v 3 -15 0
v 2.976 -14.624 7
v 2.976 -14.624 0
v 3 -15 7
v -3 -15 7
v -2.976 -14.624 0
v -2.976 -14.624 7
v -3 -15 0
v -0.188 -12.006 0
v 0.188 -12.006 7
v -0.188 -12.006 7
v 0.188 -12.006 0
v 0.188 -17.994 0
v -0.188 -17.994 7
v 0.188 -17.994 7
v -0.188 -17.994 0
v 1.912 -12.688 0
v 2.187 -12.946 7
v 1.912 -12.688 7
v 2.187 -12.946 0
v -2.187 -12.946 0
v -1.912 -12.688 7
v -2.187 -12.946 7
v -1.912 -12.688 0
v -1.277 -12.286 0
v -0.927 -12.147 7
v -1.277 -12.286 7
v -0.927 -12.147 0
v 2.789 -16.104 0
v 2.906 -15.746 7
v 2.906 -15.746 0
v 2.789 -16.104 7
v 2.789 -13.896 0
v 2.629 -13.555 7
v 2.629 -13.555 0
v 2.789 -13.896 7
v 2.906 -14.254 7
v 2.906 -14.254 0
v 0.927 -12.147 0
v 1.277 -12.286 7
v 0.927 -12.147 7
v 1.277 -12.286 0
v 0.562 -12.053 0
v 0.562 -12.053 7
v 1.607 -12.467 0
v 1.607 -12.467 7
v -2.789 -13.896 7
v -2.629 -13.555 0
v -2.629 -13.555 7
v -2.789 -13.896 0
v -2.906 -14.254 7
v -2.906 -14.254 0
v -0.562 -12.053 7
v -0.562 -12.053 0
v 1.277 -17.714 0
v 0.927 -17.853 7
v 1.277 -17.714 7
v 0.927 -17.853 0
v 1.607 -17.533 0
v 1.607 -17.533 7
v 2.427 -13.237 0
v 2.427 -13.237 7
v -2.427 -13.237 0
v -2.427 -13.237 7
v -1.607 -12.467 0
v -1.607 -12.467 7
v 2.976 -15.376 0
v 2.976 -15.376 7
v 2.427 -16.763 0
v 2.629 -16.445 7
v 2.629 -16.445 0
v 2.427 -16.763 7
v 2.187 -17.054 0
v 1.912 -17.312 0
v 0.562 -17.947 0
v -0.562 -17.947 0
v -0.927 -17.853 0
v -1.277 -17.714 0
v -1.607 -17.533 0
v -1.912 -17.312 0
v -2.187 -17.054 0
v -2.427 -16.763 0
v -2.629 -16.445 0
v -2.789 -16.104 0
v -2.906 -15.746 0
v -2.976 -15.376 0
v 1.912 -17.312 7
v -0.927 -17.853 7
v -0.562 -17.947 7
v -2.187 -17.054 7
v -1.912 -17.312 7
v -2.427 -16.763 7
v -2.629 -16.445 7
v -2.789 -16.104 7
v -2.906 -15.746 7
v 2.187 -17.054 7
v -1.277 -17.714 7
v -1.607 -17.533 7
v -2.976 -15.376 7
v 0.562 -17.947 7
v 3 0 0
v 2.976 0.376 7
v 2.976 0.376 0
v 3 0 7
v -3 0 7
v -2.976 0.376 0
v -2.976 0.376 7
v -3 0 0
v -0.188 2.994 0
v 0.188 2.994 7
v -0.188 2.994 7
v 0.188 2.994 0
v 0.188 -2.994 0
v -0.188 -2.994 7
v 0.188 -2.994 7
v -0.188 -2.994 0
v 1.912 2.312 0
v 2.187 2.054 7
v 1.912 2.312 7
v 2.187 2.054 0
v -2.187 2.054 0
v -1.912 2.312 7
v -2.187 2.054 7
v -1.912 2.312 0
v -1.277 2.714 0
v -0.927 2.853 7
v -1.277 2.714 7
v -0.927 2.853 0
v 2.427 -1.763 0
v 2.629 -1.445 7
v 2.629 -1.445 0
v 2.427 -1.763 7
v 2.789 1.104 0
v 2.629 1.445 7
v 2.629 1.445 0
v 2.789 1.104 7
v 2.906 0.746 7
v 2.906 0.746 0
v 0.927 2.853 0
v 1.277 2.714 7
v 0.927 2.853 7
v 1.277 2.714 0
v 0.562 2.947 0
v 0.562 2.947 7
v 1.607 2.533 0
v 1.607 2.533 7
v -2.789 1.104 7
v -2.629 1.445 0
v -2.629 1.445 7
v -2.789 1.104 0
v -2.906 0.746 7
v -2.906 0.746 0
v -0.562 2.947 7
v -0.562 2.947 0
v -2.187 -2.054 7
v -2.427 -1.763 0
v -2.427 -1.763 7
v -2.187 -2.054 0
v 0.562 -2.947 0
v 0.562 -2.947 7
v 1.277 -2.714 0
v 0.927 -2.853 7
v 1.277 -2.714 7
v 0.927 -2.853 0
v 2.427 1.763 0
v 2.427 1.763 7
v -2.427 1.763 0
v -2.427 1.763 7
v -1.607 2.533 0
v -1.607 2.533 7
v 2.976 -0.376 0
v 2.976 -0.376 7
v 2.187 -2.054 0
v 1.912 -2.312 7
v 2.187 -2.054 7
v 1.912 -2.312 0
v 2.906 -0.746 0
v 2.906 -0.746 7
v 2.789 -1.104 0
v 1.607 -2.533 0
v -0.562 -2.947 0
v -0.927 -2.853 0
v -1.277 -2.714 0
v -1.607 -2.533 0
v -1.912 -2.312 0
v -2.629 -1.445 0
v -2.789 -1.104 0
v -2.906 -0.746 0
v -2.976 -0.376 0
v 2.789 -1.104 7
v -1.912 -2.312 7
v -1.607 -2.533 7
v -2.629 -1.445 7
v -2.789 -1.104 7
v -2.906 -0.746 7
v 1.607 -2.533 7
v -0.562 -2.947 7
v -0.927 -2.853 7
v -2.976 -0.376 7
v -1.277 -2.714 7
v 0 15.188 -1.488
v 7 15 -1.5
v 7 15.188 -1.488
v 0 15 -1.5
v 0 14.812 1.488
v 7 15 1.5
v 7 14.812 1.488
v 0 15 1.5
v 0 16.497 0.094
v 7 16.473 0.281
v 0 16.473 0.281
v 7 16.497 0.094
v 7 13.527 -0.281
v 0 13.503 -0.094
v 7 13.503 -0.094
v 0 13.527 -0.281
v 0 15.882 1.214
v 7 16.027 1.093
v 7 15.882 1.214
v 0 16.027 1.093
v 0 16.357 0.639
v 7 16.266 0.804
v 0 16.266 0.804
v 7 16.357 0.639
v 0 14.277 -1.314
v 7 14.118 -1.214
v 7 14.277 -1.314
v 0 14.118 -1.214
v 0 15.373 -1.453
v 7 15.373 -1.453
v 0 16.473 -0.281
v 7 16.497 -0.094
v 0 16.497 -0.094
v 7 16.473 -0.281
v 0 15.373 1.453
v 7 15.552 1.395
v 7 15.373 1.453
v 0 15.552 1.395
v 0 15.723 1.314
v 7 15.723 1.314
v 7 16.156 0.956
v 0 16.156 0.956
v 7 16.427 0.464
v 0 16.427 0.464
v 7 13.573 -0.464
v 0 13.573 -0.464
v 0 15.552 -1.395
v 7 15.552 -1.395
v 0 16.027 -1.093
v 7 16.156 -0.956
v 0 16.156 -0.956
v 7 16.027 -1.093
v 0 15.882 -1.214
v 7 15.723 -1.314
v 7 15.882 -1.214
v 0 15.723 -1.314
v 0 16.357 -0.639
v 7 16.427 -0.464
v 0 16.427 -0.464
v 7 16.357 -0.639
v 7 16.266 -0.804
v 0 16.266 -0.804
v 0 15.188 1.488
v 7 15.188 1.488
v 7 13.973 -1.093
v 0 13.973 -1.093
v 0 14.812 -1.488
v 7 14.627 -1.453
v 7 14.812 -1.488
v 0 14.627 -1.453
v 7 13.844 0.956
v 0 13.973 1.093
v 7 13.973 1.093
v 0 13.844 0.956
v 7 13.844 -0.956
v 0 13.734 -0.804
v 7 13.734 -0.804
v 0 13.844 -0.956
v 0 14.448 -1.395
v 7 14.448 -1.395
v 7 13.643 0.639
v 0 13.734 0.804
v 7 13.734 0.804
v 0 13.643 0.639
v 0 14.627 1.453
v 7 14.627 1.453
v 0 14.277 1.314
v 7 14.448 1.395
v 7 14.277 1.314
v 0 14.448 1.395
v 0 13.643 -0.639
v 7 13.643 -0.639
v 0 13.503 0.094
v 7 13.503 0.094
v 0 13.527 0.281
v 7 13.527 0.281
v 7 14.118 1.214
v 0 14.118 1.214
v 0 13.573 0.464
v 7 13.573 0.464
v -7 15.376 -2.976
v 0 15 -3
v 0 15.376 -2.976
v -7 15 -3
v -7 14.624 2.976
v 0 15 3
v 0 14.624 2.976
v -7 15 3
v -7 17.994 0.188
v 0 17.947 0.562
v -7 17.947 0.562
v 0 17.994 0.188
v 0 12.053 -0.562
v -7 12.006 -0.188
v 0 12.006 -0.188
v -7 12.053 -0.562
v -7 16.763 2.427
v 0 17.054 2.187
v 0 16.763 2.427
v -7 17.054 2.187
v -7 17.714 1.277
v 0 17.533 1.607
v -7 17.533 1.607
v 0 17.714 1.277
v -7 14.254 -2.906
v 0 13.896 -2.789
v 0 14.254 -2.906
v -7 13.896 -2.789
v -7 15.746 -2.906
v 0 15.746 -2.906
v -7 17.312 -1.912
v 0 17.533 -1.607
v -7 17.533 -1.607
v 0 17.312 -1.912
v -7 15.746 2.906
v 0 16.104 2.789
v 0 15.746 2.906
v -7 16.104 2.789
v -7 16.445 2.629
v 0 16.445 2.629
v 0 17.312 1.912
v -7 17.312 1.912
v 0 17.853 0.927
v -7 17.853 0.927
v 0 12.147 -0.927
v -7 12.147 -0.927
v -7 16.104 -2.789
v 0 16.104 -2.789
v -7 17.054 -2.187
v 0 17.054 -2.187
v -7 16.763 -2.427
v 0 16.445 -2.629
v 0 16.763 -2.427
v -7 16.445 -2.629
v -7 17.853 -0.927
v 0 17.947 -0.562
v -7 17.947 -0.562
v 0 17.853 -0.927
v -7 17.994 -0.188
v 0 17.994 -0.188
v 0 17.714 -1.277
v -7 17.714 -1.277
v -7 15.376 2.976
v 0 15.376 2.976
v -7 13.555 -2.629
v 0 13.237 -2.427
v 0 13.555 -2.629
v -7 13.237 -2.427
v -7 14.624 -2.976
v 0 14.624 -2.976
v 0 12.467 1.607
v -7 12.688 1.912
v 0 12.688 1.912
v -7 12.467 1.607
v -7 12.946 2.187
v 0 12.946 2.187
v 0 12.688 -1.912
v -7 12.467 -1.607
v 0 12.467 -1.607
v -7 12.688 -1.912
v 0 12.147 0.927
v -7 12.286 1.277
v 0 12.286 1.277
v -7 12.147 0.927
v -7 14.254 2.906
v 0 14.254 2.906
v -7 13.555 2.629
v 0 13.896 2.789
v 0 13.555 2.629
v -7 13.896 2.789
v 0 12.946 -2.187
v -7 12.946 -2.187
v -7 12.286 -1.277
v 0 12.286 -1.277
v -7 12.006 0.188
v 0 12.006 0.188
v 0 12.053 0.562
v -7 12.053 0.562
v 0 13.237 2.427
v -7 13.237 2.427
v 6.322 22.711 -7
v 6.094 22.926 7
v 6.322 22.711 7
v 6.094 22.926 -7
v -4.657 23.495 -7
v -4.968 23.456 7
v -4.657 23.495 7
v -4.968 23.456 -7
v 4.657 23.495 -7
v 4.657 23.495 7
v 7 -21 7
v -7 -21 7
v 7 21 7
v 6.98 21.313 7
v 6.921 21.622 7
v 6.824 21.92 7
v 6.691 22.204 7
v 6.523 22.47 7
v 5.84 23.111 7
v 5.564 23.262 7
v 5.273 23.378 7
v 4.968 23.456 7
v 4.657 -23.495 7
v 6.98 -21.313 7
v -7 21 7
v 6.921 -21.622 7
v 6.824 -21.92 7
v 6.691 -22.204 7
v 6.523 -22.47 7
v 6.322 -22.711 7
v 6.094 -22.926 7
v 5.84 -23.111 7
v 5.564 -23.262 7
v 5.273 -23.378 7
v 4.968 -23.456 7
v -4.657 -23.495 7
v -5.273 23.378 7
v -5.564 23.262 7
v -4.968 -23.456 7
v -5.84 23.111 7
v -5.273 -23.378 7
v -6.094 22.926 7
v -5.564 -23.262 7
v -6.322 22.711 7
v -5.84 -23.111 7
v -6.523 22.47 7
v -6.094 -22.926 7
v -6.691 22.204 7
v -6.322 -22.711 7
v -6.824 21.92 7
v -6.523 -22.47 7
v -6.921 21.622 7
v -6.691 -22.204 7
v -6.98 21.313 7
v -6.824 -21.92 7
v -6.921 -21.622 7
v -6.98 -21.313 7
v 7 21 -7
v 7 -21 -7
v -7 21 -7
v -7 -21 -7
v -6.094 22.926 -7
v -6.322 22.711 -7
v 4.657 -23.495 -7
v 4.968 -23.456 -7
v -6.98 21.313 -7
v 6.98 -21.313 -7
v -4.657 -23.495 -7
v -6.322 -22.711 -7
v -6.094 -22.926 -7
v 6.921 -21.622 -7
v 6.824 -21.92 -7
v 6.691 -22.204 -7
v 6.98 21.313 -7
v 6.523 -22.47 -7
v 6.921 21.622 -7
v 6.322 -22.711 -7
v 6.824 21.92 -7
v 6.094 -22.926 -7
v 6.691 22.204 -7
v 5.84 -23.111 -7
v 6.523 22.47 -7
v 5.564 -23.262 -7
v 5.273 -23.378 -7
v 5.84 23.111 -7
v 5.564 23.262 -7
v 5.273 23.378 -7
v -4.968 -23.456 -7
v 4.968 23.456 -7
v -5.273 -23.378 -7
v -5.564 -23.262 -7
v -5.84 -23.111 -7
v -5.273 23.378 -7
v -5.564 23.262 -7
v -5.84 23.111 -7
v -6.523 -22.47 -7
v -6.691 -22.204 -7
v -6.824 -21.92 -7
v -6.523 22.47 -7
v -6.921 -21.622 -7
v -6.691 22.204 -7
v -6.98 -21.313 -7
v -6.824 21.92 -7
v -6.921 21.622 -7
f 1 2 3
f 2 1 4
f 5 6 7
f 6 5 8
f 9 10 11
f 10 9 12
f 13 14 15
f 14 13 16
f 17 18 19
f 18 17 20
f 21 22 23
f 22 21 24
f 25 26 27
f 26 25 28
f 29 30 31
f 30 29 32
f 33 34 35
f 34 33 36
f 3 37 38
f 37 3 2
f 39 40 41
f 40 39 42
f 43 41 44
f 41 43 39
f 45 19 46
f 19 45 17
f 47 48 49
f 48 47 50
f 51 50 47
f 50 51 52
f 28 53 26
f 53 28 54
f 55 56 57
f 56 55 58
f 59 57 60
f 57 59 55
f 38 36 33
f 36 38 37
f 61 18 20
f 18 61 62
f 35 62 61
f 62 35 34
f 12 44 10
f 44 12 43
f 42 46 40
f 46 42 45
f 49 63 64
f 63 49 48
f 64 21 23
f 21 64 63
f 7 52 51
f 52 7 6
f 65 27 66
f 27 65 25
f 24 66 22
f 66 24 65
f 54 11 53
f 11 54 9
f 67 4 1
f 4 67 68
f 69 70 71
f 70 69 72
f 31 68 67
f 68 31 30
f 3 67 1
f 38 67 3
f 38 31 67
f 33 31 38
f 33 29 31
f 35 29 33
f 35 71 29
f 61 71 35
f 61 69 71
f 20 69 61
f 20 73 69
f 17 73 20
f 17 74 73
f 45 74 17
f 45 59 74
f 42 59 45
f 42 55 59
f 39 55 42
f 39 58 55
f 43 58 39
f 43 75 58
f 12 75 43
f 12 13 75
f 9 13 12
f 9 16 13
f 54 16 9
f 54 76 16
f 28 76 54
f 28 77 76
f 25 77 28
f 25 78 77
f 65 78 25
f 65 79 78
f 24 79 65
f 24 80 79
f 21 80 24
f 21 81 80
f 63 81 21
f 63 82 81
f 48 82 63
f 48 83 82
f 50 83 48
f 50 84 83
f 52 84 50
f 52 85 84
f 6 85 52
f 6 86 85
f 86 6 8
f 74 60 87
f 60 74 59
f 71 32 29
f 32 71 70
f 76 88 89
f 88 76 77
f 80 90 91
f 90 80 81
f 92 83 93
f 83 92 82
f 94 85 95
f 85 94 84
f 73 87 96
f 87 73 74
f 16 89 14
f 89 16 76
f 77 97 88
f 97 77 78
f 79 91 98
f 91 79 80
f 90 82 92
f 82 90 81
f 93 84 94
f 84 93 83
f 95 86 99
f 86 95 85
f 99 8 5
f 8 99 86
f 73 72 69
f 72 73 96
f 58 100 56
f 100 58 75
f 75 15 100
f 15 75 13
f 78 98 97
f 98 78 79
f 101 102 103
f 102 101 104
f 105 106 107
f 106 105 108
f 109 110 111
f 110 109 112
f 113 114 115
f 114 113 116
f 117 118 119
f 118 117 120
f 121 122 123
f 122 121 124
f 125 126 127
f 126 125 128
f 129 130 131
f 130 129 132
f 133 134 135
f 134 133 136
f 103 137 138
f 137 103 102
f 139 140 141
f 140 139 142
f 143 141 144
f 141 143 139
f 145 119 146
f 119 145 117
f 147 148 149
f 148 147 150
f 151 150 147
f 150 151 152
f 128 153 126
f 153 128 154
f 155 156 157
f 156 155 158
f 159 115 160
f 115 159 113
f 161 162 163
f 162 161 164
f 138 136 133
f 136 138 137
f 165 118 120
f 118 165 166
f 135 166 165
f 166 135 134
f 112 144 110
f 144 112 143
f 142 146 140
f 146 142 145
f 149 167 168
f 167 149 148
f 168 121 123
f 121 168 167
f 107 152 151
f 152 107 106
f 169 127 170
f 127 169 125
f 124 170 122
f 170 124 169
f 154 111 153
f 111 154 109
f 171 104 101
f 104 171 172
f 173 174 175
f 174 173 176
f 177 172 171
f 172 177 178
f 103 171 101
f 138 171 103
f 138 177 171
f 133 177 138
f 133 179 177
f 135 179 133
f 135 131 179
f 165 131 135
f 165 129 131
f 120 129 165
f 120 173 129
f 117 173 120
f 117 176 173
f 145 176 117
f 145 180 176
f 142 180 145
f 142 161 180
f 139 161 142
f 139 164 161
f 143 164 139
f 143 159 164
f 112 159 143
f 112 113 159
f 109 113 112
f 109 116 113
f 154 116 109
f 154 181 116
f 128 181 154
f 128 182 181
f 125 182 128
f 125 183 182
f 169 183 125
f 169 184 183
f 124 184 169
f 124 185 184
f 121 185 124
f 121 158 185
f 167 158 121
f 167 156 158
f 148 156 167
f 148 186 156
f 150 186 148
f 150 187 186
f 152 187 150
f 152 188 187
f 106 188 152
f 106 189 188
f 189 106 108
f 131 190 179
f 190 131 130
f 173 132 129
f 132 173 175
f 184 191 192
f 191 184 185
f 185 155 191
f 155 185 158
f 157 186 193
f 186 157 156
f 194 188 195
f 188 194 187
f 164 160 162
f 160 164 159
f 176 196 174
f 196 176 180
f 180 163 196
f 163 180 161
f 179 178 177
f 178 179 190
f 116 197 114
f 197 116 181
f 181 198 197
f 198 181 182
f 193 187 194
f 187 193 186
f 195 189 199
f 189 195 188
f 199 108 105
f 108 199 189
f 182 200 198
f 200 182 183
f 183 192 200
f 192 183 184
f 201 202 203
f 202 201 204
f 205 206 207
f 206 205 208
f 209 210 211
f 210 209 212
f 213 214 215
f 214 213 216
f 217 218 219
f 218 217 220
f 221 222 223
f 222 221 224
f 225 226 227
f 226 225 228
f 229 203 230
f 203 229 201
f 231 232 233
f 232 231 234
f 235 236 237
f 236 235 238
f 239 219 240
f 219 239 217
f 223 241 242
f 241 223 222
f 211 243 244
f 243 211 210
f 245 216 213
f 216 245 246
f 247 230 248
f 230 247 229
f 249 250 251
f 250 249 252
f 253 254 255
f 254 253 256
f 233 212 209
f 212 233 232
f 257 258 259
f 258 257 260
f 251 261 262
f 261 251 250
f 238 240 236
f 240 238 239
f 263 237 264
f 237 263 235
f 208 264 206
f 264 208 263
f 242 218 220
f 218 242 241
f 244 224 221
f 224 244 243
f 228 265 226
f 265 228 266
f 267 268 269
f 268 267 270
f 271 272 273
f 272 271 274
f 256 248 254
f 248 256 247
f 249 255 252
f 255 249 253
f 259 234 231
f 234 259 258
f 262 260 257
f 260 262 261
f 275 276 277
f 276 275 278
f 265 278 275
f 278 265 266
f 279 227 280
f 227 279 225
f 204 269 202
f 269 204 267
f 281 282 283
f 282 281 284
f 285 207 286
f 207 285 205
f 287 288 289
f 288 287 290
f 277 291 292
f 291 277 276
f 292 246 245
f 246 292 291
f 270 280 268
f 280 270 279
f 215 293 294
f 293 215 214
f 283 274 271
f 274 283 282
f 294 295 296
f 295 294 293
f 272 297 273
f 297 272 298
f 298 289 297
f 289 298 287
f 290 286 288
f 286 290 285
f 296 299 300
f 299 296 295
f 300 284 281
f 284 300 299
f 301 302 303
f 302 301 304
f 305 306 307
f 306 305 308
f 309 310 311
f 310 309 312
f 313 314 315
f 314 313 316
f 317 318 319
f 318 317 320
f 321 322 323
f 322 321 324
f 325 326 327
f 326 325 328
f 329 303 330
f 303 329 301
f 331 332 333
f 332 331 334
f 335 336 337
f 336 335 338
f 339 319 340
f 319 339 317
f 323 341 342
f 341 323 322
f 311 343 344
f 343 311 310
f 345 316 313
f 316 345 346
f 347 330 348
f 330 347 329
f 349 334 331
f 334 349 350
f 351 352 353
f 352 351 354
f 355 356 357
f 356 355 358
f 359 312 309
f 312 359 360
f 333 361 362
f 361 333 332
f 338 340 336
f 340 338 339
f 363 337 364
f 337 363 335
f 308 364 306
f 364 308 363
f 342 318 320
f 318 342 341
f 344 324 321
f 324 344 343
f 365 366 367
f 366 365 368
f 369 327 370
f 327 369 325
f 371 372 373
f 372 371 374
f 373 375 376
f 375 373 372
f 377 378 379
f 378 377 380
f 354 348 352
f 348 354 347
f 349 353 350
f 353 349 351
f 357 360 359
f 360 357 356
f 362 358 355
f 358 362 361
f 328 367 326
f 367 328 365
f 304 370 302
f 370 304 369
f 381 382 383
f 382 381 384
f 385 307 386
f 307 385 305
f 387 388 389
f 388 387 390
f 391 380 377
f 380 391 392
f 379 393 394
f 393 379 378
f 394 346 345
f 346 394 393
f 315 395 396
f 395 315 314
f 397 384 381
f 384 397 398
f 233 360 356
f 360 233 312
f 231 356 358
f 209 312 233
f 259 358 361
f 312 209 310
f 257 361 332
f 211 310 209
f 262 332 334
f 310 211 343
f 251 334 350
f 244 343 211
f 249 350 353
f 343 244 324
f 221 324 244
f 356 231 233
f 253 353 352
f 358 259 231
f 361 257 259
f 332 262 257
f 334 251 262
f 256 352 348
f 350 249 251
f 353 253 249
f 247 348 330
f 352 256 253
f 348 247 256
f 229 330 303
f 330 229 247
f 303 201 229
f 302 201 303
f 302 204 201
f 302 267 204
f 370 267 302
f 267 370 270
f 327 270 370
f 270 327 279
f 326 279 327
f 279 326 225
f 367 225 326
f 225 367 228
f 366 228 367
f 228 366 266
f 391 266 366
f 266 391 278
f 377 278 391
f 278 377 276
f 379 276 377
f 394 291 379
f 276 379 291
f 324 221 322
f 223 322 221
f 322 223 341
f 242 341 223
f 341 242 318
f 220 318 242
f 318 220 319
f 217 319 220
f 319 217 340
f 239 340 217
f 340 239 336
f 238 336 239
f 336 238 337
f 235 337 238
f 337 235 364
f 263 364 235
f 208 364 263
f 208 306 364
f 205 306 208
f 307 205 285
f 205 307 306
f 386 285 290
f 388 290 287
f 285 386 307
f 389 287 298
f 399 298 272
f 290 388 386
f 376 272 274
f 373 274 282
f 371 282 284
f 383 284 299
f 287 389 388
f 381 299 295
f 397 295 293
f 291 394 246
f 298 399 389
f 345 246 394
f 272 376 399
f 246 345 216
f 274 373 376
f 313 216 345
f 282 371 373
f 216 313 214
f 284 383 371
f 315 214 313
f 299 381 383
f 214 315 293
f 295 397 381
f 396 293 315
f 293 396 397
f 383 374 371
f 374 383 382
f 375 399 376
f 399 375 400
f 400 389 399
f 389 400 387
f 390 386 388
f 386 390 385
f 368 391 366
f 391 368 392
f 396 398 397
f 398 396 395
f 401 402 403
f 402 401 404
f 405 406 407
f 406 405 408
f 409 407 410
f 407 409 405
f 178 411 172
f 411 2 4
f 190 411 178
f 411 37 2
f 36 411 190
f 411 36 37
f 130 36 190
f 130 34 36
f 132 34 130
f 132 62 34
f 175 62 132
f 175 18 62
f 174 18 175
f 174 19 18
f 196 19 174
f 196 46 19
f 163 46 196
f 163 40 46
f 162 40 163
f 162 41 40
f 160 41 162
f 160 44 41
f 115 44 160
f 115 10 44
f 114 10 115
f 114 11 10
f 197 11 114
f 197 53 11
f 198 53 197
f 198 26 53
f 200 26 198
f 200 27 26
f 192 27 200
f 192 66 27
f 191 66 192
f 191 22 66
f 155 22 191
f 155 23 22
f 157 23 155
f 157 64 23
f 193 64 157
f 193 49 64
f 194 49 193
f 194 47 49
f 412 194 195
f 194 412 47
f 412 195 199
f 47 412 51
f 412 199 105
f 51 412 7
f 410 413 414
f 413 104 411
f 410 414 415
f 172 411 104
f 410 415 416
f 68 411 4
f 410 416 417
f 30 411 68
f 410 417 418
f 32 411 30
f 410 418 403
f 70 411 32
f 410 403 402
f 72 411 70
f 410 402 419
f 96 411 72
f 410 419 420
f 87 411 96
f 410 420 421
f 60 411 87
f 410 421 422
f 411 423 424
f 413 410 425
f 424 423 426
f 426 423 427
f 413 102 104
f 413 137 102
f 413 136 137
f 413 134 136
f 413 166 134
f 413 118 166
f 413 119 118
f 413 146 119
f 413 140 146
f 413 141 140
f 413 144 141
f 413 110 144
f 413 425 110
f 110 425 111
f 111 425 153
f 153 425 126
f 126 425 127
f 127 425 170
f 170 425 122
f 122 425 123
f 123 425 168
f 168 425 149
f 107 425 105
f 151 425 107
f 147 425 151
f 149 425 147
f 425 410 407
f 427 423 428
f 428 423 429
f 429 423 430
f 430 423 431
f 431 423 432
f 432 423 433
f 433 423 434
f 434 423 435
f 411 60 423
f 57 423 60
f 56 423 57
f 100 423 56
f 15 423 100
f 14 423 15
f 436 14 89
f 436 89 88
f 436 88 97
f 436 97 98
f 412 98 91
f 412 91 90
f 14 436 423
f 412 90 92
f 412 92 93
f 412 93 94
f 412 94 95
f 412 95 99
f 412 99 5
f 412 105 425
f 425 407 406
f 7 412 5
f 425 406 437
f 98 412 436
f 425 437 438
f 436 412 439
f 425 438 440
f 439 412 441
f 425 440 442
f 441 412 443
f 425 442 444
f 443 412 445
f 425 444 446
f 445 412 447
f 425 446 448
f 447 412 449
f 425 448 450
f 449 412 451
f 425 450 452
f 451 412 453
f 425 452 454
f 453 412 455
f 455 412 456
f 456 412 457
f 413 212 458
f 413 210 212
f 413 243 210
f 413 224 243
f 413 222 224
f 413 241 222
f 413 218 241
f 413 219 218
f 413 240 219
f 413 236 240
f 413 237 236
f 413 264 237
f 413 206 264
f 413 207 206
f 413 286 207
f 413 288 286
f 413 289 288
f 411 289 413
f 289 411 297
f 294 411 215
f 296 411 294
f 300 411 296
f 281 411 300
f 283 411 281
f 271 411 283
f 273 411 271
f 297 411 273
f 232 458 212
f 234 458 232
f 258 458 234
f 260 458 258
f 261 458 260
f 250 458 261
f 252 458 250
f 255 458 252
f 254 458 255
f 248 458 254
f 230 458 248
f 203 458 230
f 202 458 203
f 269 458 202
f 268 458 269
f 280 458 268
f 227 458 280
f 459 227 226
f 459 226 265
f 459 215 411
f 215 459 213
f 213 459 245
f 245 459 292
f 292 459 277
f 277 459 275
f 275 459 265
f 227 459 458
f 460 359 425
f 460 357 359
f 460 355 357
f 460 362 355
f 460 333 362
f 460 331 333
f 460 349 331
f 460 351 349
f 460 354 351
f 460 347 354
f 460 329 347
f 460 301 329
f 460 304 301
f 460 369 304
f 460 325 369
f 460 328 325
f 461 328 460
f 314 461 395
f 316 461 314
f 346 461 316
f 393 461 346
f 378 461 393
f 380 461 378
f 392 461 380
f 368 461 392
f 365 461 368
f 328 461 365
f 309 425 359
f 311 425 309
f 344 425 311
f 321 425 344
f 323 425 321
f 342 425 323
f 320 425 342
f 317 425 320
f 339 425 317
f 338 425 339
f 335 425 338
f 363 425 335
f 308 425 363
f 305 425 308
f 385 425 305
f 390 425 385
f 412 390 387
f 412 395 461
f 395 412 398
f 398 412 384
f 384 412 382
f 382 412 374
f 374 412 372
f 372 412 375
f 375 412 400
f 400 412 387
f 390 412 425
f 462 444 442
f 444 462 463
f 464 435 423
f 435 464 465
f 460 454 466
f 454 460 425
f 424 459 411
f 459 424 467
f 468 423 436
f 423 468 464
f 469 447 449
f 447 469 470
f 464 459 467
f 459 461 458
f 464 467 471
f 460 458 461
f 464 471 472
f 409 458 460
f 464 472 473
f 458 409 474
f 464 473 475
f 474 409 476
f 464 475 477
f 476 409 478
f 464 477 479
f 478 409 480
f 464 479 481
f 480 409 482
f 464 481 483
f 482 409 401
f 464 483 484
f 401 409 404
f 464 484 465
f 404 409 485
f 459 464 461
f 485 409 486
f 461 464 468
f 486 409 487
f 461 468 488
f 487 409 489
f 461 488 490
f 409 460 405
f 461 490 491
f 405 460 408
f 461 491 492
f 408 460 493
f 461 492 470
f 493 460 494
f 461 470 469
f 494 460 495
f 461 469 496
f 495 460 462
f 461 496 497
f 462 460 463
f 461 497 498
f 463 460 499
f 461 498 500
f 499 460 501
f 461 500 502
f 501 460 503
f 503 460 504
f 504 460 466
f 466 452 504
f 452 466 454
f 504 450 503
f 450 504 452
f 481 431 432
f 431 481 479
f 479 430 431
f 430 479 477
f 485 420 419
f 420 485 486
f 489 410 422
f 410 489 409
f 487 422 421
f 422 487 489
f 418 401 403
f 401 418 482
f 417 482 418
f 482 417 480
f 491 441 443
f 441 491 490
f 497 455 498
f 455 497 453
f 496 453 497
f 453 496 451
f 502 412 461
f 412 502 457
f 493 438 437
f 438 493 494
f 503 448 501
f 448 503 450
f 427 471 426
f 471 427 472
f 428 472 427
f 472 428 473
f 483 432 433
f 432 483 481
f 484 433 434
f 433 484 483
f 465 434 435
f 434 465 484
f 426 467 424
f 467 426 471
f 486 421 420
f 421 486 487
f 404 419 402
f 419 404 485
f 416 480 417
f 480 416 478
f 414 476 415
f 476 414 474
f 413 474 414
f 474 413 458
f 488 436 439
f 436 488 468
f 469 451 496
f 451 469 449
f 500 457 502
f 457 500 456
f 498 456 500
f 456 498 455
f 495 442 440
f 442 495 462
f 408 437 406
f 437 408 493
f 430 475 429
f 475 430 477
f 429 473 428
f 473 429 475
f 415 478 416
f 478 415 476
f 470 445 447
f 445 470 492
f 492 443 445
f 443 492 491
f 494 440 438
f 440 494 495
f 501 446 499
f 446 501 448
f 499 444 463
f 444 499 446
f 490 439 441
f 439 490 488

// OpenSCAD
$fn = 50;


difference() {
	union() {
		translate(v = [0, 0, -7.0000000000]) {
			hull() {
				translate(v = [-4.5000000000, 21.0000000000, 0]) {
					cylinder(h = 14, r = 2.5000000000);
				}
				translate(v = [4.5000000000, 21.0000000000, 0]) {
					cylinder(h = 14, r = 2.5000000000);
				}
				translate(v = [-4.5000000000, -21.0000000000, 0]) {
					cylinder(h = 14, r = 2.5000000000);
				}
				translate(v = [4.5000000000, -21.0000000000, 0]) {
					cylinder(h = 14, r = 2.5000000000);
				}
			}
		}
	}
	union() {
		translate(v = [0.0000000000, -15.0000000000, 0]) {
			cylinder(h = 100, r = 3.0000000000);
		}
		cylinder(h = 100, r = 3.0000000000);
		translate(v = [-50, 15, 0]) {
			rotate(a = [0, 90, 0]) {
				cylinder(h = 100, r = 1.5000000000);
			}
		}
		translate(v = [-100, 15, 0]) {
			rotate(a = [0, 90, 0]) {
				cylinder(h = 100, r = 3.0000000000);
			}
		}
	}
}
